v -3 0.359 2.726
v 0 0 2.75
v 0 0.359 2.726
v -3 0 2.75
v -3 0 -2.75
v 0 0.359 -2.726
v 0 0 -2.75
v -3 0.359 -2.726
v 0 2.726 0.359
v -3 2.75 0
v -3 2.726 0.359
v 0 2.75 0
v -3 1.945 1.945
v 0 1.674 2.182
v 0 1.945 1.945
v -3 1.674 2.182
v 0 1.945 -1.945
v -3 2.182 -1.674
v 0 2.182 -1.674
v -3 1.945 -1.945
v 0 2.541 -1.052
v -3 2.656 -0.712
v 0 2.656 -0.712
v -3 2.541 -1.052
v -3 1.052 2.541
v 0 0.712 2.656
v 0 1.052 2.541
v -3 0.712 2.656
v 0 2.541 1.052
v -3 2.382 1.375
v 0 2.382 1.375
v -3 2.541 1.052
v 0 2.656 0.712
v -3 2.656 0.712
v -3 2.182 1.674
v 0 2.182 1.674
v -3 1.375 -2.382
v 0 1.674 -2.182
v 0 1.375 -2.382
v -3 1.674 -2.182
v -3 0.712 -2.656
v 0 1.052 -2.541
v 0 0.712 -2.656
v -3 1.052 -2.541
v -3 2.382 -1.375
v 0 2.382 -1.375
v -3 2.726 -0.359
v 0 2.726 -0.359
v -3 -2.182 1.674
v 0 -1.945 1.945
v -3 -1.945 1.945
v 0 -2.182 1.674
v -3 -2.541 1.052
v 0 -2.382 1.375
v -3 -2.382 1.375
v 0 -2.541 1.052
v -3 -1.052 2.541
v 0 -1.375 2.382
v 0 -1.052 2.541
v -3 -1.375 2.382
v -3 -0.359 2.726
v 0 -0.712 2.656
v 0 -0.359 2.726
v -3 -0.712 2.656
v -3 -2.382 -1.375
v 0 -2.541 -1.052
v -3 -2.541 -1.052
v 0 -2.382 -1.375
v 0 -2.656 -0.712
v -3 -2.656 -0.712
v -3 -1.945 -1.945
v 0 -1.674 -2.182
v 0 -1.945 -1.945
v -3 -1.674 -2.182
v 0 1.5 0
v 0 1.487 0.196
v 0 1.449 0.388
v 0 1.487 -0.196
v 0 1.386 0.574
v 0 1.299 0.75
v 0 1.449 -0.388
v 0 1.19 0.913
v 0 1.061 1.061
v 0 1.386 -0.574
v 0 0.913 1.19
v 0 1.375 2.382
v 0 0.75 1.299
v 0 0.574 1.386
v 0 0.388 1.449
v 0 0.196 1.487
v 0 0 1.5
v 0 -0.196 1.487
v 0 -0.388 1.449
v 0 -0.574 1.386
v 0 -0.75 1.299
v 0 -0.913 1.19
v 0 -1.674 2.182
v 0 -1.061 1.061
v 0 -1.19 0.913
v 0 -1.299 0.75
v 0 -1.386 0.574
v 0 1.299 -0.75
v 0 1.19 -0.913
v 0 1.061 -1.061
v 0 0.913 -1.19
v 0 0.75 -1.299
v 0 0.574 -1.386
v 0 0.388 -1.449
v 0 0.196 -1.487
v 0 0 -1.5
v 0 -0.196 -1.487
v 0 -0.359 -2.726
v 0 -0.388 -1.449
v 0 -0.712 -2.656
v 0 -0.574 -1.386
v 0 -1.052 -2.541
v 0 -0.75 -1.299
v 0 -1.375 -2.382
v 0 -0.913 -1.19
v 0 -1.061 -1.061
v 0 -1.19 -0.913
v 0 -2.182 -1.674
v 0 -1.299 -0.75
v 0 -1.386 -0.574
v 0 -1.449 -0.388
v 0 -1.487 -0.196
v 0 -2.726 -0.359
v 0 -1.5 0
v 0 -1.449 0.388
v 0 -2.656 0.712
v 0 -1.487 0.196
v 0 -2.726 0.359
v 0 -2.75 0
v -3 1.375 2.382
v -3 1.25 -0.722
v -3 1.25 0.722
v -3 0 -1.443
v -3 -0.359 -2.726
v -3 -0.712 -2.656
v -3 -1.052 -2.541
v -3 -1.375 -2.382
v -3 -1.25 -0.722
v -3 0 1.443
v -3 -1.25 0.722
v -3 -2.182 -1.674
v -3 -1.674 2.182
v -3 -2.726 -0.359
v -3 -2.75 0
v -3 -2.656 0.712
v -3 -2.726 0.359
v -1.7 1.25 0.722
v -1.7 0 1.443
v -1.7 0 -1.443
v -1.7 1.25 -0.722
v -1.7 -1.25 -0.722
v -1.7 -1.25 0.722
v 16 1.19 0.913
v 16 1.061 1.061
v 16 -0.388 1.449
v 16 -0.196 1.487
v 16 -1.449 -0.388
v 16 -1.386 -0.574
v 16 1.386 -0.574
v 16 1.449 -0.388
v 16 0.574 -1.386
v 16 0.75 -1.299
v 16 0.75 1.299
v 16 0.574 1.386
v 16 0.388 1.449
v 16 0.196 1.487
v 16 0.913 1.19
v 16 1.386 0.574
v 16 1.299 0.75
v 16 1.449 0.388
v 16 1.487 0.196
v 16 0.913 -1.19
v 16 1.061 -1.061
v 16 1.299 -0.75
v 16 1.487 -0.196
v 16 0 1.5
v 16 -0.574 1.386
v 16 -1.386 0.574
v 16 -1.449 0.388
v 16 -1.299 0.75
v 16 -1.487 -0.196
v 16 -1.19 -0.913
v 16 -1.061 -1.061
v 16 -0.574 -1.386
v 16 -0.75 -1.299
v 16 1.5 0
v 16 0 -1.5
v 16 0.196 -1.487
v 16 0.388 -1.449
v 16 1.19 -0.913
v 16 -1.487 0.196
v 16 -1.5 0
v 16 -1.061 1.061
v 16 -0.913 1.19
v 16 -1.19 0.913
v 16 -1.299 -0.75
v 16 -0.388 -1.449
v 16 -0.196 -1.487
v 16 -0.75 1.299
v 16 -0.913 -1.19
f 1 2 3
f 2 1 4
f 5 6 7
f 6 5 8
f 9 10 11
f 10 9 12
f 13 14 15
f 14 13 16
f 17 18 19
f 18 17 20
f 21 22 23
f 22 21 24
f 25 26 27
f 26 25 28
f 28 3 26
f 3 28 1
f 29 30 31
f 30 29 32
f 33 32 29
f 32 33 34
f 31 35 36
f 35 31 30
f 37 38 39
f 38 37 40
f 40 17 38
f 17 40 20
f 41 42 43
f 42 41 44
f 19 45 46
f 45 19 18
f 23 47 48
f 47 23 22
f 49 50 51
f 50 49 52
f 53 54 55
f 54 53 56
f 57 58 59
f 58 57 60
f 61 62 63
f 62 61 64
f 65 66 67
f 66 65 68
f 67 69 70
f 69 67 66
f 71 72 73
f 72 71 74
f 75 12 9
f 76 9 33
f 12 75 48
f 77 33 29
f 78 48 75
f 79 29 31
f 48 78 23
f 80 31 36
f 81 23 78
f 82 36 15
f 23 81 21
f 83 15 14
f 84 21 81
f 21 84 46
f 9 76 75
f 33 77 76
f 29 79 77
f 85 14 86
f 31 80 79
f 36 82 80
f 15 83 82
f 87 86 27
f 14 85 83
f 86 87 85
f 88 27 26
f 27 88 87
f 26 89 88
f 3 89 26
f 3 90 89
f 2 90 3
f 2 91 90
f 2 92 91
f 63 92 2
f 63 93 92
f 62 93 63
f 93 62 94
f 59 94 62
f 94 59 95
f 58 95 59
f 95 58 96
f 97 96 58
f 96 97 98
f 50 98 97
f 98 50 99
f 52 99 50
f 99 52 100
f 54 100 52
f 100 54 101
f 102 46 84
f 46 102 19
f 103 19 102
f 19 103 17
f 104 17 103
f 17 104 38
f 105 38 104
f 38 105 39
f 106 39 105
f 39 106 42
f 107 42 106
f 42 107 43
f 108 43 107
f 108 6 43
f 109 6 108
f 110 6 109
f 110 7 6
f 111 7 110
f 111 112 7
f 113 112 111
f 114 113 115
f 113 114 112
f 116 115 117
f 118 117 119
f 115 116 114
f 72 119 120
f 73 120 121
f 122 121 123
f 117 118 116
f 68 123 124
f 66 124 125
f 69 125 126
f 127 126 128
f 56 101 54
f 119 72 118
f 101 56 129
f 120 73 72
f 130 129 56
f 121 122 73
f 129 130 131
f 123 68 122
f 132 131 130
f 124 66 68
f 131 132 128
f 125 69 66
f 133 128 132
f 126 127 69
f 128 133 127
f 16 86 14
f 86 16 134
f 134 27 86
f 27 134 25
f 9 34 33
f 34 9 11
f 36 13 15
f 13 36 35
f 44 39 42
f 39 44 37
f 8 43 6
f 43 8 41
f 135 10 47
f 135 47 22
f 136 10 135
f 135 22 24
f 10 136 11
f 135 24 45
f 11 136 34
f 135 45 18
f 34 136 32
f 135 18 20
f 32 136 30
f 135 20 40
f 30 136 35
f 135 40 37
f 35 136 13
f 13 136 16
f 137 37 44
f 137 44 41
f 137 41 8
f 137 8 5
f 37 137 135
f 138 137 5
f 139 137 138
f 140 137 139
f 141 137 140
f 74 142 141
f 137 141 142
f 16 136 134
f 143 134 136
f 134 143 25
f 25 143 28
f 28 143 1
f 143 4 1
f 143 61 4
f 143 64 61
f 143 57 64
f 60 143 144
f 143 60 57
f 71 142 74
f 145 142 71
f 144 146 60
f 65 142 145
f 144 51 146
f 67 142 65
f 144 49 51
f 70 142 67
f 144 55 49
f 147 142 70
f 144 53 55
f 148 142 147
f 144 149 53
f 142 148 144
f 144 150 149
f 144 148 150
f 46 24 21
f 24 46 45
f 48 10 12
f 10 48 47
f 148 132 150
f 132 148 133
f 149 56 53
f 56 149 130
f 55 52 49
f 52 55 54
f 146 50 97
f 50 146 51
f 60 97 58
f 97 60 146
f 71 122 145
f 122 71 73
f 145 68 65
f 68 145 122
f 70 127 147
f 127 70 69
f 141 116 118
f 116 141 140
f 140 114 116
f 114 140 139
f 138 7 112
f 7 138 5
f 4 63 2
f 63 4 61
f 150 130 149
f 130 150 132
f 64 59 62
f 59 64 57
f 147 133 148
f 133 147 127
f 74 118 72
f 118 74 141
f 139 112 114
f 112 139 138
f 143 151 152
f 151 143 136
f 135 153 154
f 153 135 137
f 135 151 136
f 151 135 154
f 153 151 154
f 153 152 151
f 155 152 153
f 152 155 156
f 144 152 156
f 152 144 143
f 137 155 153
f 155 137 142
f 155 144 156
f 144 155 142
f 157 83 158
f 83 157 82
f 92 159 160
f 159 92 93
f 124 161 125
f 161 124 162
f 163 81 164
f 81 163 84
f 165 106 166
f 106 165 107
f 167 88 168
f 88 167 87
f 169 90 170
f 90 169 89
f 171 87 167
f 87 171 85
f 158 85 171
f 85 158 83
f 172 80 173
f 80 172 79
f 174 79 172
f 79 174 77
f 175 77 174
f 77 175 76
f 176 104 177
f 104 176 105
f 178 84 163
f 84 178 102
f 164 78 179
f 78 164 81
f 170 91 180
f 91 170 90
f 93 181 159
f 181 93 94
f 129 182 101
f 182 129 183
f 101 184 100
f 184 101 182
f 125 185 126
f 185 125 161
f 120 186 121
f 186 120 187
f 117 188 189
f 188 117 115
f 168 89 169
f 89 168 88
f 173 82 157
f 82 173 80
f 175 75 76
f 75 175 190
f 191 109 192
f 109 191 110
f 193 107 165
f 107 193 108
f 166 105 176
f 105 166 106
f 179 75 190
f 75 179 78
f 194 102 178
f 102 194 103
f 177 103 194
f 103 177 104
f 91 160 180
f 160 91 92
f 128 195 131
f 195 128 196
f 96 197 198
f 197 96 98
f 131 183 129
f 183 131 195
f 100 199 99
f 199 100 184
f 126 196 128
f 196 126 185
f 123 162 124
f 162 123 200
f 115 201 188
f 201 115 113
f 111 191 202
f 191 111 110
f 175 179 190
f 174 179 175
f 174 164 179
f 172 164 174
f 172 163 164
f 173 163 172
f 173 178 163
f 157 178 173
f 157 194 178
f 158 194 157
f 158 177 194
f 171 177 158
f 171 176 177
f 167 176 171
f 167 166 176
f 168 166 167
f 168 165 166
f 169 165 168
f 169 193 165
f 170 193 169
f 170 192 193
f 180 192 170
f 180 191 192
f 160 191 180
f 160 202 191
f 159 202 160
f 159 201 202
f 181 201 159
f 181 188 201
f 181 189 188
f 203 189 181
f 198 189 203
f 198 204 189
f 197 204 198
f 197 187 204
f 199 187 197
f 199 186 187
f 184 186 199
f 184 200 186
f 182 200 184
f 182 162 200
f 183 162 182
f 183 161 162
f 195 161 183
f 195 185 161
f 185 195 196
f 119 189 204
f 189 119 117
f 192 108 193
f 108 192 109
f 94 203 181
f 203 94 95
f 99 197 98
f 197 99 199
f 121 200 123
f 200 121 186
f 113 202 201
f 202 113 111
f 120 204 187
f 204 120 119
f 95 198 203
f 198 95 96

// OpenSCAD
// file: ../../lib/nutsnbolts/data-access.scad
// Norm Nuts and Bolts - a OpenSCAD library
// Copyright (C) 2012  Johannes Kneer

// This program is free software: you can redistribute it and/or modify
// it under the terms of the GNU General Public License as published by
// the Free Software Foundation, either version 3 of the License, or
// (at your option) any later version.

// This program is distributed in the hope that it will be useful,
// but WITHOUT ANY WARRANTY; without even the implied warranty of
// MERCHANTABILITY or FITNESS FOR A PARTICULAR PURPOSE.  See the
// GNU General Public License for more details.

// You should have received a copy of the GNU General Public License
// along with this program.  If not, see <http://www.gnu.org/licenses/>.


// DATABASE ACCESS FUNCTIONS AND CONSTANTS



// == CONSTANTS ==

// screw table access keys
_NB_S_DESC            = 0;
_NB_S_FAMKEY			    = 1;
_NB_S_LENGTH          = 2;
_NB_S_NOTHREAD_LENGTH = 3;

_NB_F_DESC			      = 0;
_NB_F_OUTER_DIA       = 1;
_NB_F_INNER_DIA       = 2;
_NB_F_LEAD            = 3;
_NB_F_KEY             = 4;
_NB_F_KEY_DEPTH       = 5;
_NB_F_HEAD_HEIGHT     = 6;
_NB_F_HEAD_DIA        = 7;
_NB_F_NUT_KEY         = 8;
_NB_F_NUT_HEIGHT      = 9;
_NB_F_PITCH_FINE      = 10;
_NB_F_PITCH_MEDIUM    = 11;
_NB_F_PITCH_COARSE    = 12;


// == FUNCTIONS ==

// _get_screw("descriptor")   with descriptor = M8x25
//   find the line for a general object in the data matrix

function _get_screw(n) = data_screw[search([n], data_screw)[0]];
function _get_screw_fam(n) = data_screw_fam[search([_get_screw(n)[_NB_S_FAMKEY]], data_screw_fam)[0]];

function _get_fam(n) = data_screw_fam[search([n], data_screw_fam)[0]];


// _get_XXXXX("descriptor") functions
// find a single property in the database

function _get_desc(n)        = _get_screw(n)[_NB_S_DESC];
function _get_famkey(n)         = _get_screw(n)[_NB_S_FAMKEY];
function _get_length(n)      = _get_screw(n)[_NB_S_LENGTH];
function _get_nt_length(n)   = _get_screw(n)[_NB_S_NOTHREAD_LENGTH];

function _get_outer_dia(n)   = _get_screw_fam(n)[_NB_F_OUTER_DIA];
function _get_inner_dia(n)   = _get_screw_fam(n)[_NB_F_INNER_DIA];
function _get_lead(n)        = _get_screw_fam(n)[_NB_F_LEAD];
function _get_head_height(n) = _get_screw_fam(n)[_NB_F_HEAD_HEIGHT];
function _get_head_dia(n)    = _get_screw_fam(n)[_NB_F_HEAD_DIA];
function _get_nut_key(n)     = _get_screw_fam(n)[_NB_F_NUT_KEY];
function _get_nut_height(n)  = _get_screw_fam(n)[_NB_F_NUT_HEIGHT];
function _get_fine_pitch(n)  = _get_screw_fam(n)[_NB_F_PITCH_FINE];
function _get_medium_pitch(n)  = _get_screw_fam(n)[_NB_F_PITCH_MEDIUM];
function _get_coarse_pitch(n)  = _get_screw_fam(n)[_NB_F_PITCH_COARSE];
// main file
/**********************************************************************************************************************
 **
 ** parts/vitamins/screw_M3x16.scad
 **
 ** This file renders a screw of the dimensions specified by the file name.
 **
 **********************************************************************************************************************/

include <../../lib/nutsnbolts/cyl_head_bolt.scad>;

$fn = 48;
rotate([0, -90, 0])
	screw("M3x16"); 
